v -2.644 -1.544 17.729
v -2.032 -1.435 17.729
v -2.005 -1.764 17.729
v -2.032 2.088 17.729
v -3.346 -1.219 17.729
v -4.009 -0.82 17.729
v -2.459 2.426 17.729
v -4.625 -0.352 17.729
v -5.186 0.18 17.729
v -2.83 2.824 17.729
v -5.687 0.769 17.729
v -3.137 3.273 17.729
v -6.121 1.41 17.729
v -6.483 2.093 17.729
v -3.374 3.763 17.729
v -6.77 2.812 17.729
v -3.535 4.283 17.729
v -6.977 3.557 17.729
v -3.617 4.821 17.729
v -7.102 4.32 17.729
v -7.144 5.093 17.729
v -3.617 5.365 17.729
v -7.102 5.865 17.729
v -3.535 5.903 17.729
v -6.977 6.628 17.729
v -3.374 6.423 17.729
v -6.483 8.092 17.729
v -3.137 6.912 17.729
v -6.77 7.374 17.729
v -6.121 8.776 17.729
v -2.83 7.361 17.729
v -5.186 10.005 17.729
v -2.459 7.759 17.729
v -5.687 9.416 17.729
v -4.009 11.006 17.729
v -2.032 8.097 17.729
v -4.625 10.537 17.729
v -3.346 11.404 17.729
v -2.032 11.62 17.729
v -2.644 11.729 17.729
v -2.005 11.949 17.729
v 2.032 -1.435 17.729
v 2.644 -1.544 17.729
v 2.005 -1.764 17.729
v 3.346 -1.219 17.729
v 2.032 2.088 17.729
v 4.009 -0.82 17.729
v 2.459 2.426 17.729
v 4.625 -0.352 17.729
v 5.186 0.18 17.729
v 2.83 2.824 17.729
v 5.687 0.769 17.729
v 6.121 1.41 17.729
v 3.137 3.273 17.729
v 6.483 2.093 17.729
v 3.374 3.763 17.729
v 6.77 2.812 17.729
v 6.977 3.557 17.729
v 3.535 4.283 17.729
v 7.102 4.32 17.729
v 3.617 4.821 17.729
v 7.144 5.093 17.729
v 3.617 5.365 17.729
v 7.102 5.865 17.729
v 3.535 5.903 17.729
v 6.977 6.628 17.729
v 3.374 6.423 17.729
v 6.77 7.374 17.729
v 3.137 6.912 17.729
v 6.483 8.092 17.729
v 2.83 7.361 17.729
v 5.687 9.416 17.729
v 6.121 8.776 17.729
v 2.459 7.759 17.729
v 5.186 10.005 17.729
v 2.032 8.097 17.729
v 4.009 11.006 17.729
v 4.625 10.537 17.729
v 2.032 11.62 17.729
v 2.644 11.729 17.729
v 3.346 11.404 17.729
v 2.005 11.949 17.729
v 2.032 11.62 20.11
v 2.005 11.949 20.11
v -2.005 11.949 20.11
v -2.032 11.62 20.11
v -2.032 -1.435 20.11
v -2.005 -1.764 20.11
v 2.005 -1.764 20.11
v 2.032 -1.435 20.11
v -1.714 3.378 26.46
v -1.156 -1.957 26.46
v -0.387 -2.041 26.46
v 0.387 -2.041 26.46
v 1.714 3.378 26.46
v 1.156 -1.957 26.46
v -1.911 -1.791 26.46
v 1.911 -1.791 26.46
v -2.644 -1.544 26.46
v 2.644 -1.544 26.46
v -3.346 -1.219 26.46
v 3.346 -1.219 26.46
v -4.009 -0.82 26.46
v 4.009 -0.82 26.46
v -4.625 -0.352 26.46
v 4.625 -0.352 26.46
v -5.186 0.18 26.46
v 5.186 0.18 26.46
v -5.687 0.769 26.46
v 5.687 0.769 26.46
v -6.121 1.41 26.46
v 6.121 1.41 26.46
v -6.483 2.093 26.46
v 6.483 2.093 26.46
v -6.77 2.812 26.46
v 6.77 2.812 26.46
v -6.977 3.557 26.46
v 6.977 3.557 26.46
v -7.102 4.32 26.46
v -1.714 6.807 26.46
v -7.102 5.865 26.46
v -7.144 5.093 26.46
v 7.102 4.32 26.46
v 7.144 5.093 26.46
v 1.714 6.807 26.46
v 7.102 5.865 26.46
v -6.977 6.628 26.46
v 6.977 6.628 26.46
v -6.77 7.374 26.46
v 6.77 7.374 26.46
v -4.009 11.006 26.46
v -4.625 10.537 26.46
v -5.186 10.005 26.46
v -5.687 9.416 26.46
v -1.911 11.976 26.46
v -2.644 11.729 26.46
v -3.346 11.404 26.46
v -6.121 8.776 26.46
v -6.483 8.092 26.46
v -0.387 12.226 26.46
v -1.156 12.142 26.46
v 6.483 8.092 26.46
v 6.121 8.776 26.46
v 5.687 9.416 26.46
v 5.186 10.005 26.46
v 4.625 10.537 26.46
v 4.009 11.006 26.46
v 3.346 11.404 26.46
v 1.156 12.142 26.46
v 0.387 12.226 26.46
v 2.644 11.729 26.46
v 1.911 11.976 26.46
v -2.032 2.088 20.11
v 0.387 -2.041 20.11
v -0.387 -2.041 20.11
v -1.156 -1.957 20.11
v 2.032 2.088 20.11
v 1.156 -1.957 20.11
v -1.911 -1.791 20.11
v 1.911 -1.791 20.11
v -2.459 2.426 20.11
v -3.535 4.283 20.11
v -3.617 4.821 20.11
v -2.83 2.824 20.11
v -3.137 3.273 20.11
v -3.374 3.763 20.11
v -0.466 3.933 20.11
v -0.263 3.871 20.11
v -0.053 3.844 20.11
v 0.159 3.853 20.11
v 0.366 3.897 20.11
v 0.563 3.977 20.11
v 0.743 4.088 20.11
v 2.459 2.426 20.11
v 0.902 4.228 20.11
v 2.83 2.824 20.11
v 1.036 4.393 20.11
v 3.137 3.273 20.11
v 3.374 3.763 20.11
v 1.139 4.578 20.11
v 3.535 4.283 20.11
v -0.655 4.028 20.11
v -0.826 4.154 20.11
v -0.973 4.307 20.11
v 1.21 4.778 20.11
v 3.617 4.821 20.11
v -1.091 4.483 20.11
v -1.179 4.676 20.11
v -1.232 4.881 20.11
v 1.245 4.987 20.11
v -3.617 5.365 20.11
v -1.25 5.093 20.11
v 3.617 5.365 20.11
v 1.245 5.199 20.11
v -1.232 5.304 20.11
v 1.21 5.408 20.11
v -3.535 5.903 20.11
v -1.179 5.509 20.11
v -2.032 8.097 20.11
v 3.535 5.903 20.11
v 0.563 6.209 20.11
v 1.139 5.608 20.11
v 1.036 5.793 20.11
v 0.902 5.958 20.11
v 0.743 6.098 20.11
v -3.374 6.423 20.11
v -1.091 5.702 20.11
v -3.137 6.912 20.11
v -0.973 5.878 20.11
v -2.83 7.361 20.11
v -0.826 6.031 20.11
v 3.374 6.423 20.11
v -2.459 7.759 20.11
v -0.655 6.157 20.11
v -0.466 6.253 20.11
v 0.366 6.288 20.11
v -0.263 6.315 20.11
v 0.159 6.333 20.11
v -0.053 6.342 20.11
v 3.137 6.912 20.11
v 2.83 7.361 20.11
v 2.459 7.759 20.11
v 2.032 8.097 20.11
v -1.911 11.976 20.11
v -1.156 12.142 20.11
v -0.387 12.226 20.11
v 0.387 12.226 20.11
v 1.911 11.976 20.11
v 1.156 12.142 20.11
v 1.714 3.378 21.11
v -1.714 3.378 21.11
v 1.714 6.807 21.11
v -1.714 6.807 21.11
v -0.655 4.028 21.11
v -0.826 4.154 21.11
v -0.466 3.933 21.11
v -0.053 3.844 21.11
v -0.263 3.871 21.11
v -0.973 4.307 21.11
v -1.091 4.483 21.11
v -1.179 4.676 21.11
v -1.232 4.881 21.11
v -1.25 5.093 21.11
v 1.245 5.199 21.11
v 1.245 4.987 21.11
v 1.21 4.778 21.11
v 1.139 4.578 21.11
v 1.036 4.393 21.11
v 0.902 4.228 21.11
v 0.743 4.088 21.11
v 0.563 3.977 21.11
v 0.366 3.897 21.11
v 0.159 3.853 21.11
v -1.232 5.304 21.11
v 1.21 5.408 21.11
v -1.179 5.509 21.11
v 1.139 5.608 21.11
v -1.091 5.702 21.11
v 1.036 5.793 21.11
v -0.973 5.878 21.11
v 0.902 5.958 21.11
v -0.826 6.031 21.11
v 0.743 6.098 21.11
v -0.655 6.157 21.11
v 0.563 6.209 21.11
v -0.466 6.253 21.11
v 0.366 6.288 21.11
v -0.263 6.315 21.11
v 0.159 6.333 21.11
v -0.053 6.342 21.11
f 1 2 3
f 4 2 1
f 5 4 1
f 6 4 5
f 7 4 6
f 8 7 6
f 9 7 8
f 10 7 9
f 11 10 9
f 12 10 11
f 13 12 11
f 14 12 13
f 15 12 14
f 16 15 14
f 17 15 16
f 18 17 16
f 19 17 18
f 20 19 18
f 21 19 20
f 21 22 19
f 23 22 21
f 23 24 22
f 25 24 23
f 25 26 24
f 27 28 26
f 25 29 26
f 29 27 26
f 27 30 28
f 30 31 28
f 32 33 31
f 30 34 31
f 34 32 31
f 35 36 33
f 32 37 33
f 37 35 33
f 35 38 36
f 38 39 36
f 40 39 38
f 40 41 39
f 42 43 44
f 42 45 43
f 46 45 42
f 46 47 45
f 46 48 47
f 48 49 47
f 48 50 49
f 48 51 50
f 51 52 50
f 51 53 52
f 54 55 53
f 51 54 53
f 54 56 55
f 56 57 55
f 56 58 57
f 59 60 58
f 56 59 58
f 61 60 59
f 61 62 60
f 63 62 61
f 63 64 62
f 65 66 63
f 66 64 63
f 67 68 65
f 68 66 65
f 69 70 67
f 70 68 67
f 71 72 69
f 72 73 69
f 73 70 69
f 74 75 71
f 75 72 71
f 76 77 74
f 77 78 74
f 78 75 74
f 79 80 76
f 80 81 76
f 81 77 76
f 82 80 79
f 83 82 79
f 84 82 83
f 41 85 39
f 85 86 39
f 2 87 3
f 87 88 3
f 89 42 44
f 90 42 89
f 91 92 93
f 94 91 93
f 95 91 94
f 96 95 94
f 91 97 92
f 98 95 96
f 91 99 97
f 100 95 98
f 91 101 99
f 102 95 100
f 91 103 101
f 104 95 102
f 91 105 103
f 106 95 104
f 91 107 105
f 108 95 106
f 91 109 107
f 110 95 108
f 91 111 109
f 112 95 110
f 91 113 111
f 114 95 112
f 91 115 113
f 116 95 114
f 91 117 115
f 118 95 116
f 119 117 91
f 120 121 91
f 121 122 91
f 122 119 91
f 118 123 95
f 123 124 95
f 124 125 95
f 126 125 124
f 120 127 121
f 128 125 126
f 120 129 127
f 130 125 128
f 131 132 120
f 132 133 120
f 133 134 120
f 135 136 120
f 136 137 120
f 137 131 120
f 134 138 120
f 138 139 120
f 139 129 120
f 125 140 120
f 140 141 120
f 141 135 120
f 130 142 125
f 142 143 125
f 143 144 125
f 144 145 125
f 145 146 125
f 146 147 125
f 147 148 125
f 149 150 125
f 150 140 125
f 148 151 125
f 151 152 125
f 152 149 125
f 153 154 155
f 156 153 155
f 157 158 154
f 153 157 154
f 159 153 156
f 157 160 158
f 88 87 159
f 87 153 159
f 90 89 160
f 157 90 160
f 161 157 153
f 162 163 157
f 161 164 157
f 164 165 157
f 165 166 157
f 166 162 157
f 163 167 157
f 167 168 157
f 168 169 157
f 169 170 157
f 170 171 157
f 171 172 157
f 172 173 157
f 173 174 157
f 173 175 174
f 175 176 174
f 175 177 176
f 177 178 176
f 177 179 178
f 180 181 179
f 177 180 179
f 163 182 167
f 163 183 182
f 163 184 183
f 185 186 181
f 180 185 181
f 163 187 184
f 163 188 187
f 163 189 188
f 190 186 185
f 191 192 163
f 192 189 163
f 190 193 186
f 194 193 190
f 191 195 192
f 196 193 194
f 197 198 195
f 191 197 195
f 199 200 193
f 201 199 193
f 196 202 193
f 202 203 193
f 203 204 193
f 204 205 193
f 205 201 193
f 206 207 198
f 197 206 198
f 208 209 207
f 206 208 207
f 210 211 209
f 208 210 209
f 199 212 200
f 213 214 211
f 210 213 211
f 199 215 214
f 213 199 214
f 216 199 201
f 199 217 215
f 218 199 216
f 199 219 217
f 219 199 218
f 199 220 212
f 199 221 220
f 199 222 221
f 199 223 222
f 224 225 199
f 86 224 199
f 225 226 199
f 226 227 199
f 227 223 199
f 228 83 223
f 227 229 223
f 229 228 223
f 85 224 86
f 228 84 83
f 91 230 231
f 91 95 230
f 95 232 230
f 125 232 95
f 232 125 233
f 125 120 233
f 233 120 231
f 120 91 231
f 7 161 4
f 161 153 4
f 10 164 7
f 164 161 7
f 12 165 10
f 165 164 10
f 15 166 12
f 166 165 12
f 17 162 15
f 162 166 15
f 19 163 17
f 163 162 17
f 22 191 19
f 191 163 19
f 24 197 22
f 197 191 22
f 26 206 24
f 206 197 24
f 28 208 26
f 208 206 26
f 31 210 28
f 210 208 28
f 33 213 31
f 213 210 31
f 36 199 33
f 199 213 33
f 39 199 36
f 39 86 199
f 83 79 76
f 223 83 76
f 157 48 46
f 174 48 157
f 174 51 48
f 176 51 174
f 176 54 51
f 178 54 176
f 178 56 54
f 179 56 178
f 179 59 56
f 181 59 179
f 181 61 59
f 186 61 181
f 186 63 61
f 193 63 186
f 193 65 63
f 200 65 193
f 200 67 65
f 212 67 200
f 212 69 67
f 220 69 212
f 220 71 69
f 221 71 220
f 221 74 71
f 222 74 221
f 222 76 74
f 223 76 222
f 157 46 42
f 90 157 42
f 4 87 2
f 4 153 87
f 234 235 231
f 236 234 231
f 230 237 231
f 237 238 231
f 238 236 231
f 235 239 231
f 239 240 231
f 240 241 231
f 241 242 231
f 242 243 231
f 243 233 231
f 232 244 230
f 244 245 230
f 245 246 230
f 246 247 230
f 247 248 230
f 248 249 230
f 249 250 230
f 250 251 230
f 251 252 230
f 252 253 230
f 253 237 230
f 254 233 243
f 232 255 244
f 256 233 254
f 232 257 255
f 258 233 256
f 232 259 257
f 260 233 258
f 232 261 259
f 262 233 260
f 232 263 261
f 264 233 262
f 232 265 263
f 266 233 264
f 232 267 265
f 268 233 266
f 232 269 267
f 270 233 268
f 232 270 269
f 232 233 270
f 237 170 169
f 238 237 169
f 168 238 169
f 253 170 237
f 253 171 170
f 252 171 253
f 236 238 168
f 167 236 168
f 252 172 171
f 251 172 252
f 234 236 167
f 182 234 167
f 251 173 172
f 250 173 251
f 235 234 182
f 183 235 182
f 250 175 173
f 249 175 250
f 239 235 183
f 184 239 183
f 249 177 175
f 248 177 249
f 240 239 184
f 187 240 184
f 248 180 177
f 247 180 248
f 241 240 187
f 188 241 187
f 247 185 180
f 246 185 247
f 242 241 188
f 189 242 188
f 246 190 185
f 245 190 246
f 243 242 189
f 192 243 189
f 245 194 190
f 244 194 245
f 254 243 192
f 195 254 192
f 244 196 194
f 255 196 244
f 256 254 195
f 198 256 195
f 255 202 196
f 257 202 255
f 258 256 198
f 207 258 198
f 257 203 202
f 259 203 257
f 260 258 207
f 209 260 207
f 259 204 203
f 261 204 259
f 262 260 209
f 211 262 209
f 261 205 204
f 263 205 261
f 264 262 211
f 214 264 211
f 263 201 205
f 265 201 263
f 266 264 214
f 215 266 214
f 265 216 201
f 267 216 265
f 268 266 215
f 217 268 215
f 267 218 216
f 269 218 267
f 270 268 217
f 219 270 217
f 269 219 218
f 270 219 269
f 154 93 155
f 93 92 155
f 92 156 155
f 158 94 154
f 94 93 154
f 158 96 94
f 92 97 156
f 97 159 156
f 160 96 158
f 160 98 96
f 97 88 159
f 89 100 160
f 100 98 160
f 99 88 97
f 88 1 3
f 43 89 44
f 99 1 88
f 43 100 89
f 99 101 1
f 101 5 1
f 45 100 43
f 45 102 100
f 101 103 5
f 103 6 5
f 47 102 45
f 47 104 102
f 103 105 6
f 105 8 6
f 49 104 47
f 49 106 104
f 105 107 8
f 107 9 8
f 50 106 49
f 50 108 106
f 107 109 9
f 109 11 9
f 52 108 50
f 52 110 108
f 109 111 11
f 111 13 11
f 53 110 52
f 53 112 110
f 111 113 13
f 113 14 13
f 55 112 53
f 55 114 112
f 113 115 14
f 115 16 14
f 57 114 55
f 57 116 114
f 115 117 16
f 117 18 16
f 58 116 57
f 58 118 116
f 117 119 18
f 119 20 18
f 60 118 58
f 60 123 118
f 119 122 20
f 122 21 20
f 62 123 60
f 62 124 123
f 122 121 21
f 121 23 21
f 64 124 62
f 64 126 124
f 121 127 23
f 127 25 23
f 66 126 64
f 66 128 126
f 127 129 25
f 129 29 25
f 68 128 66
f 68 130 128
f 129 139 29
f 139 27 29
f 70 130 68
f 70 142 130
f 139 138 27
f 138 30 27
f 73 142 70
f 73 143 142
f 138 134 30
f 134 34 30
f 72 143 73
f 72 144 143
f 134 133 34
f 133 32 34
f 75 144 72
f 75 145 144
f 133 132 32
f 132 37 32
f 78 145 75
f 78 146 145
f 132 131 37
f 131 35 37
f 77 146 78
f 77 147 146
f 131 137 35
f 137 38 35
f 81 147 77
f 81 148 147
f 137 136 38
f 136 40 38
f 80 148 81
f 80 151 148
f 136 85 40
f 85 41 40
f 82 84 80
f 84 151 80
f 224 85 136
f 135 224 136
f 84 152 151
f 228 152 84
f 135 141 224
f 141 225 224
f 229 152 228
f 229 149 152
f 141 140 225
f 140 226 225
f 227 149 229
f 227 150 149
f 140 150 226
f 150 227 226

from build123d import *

# Parameters (mm, degrees)
SKETCH1_R               = 9.35355
BOSS_EXTRUDE1_DEPTH     = 2.38125
BOSS_EXTRUDE2_START     = 6.35
SKETCH2_R               = 9.35355
SKETCH2_W               = 3.429
SKETCH2_H               = 3.429
BOSS_EXTRUDE2_DEPTH     = 6.35
SKETCH3_W               = 3.429
SKETCH3_H               = 3.429
SKETCH3_R               = 1.25
BOSS_EXTRUDE3_DEPTH     = 1
CUT_EXTRUDE1_DEPTH      = 20.29812849
CUT_EXTRUDE1_DEPTH_BACK = 20.29812849
SKETCH4_OUTSIDE_W       = 26.28
SKETCH4_OUTSIDE_H       = 26.279
SKETCH4_OUTSIDE_R       = 7.14375


with BuildPart() as part:
    # Sketch1 → Boss-Extrude1 (new body)
    with BuildSketch(Plane.XY.offset(20.11015)):
        with Locations((0, 5.0927)):
            Circle(SKETCH1_R)
        with BuildLine():
            Line((-2.032, 2.088352317), (-2.032, -1.4351))
            ThreePointArc((-2.032, -1.4351), (0, -3.4671), (2.032, -1.4351))
            Line((2.032, -1.4351), (2.032, 2.088352317))
            ThreePointArc((2.032, 2.088352317), (3.627, 5.0927), (2.032, 8.097047683))
            Line((2.032, 8.097047683), (2.032, 11.6205))
            ThreePointArc((2.032, 11.6205), (0, 13.6525), (-2.032, 11.6205))
            Line((-2.032, 11.6205), (-2.032, 8.097047683))
            ThreePointArc((-2.032, 8.097047683), (-3.627, 5.0927), (-2.032, 2.088352317))
        make_face(mode=Mode.SUBTRACT)
    extrude(amount=-BOSS_EXTRUDE1_DEPTH)

    # Sketch2 → Boss-Extrude2 (add)
    with BuildSketch(Plane.XY.offset(20.11015).offset(BOSS_EXTRUDE2_START)):
        with Locations((0, 5.0927)):
            Circle(SKETCH2_R)
        with Locations((0, 5.0927)):
            Rectangle(SKETCH2_W, SKETCH2_H, mode=Mode.SUBTRACT)
    extrude(amount=-BOSS_EXTRUDE2_DEPTH)

    # Sketch3 → Boss-Extrude3 (add)
    with BuildSketch(Plane(origin=(0, 0, 20.11015), x_dir=(-1, 0, 0), z_dir=(0, 0, -1))):
        with Locations((0, 5.0927)):
            Rectangle(SKETCH3_W, SKETCH3_H)
        with Locations((0, 5.0927)):
            Circle(SKETCH3_R, mode=Mode.SUBTRACT)
    extrude(amount=-BOSS_EXTRUDE3_DEPTH)

    # Sketch4 outside → Cut-Extrude1 (cut, two sides: drawn at the far end of the back side and taken through both)
    with BuildSketch(Plane(origin=(0, 0, 17.7289), x_dir=(-1, 0, 0), z_dir=(0, 0, -1)).offset(-CUT_EXTRUDE1_DEPTH_BACK)):
        with Locations((0, 5.0925)):
            Rectangle(SKETCH4_OUTSIDE_W, SKETCH4_OUTSIDE_H)
        with Locations((0, 5.0927)):
            Circle(SKETCH4_OUTSIDE_R, mode=Mode.SUBTRACT)
    extrude(amount=CUT_EXTRUDE1_DEPTH + CUT_EXTRUDE1_DEPTH_BACK, mode=Mode.SUBTRACT)


solid = part.part
